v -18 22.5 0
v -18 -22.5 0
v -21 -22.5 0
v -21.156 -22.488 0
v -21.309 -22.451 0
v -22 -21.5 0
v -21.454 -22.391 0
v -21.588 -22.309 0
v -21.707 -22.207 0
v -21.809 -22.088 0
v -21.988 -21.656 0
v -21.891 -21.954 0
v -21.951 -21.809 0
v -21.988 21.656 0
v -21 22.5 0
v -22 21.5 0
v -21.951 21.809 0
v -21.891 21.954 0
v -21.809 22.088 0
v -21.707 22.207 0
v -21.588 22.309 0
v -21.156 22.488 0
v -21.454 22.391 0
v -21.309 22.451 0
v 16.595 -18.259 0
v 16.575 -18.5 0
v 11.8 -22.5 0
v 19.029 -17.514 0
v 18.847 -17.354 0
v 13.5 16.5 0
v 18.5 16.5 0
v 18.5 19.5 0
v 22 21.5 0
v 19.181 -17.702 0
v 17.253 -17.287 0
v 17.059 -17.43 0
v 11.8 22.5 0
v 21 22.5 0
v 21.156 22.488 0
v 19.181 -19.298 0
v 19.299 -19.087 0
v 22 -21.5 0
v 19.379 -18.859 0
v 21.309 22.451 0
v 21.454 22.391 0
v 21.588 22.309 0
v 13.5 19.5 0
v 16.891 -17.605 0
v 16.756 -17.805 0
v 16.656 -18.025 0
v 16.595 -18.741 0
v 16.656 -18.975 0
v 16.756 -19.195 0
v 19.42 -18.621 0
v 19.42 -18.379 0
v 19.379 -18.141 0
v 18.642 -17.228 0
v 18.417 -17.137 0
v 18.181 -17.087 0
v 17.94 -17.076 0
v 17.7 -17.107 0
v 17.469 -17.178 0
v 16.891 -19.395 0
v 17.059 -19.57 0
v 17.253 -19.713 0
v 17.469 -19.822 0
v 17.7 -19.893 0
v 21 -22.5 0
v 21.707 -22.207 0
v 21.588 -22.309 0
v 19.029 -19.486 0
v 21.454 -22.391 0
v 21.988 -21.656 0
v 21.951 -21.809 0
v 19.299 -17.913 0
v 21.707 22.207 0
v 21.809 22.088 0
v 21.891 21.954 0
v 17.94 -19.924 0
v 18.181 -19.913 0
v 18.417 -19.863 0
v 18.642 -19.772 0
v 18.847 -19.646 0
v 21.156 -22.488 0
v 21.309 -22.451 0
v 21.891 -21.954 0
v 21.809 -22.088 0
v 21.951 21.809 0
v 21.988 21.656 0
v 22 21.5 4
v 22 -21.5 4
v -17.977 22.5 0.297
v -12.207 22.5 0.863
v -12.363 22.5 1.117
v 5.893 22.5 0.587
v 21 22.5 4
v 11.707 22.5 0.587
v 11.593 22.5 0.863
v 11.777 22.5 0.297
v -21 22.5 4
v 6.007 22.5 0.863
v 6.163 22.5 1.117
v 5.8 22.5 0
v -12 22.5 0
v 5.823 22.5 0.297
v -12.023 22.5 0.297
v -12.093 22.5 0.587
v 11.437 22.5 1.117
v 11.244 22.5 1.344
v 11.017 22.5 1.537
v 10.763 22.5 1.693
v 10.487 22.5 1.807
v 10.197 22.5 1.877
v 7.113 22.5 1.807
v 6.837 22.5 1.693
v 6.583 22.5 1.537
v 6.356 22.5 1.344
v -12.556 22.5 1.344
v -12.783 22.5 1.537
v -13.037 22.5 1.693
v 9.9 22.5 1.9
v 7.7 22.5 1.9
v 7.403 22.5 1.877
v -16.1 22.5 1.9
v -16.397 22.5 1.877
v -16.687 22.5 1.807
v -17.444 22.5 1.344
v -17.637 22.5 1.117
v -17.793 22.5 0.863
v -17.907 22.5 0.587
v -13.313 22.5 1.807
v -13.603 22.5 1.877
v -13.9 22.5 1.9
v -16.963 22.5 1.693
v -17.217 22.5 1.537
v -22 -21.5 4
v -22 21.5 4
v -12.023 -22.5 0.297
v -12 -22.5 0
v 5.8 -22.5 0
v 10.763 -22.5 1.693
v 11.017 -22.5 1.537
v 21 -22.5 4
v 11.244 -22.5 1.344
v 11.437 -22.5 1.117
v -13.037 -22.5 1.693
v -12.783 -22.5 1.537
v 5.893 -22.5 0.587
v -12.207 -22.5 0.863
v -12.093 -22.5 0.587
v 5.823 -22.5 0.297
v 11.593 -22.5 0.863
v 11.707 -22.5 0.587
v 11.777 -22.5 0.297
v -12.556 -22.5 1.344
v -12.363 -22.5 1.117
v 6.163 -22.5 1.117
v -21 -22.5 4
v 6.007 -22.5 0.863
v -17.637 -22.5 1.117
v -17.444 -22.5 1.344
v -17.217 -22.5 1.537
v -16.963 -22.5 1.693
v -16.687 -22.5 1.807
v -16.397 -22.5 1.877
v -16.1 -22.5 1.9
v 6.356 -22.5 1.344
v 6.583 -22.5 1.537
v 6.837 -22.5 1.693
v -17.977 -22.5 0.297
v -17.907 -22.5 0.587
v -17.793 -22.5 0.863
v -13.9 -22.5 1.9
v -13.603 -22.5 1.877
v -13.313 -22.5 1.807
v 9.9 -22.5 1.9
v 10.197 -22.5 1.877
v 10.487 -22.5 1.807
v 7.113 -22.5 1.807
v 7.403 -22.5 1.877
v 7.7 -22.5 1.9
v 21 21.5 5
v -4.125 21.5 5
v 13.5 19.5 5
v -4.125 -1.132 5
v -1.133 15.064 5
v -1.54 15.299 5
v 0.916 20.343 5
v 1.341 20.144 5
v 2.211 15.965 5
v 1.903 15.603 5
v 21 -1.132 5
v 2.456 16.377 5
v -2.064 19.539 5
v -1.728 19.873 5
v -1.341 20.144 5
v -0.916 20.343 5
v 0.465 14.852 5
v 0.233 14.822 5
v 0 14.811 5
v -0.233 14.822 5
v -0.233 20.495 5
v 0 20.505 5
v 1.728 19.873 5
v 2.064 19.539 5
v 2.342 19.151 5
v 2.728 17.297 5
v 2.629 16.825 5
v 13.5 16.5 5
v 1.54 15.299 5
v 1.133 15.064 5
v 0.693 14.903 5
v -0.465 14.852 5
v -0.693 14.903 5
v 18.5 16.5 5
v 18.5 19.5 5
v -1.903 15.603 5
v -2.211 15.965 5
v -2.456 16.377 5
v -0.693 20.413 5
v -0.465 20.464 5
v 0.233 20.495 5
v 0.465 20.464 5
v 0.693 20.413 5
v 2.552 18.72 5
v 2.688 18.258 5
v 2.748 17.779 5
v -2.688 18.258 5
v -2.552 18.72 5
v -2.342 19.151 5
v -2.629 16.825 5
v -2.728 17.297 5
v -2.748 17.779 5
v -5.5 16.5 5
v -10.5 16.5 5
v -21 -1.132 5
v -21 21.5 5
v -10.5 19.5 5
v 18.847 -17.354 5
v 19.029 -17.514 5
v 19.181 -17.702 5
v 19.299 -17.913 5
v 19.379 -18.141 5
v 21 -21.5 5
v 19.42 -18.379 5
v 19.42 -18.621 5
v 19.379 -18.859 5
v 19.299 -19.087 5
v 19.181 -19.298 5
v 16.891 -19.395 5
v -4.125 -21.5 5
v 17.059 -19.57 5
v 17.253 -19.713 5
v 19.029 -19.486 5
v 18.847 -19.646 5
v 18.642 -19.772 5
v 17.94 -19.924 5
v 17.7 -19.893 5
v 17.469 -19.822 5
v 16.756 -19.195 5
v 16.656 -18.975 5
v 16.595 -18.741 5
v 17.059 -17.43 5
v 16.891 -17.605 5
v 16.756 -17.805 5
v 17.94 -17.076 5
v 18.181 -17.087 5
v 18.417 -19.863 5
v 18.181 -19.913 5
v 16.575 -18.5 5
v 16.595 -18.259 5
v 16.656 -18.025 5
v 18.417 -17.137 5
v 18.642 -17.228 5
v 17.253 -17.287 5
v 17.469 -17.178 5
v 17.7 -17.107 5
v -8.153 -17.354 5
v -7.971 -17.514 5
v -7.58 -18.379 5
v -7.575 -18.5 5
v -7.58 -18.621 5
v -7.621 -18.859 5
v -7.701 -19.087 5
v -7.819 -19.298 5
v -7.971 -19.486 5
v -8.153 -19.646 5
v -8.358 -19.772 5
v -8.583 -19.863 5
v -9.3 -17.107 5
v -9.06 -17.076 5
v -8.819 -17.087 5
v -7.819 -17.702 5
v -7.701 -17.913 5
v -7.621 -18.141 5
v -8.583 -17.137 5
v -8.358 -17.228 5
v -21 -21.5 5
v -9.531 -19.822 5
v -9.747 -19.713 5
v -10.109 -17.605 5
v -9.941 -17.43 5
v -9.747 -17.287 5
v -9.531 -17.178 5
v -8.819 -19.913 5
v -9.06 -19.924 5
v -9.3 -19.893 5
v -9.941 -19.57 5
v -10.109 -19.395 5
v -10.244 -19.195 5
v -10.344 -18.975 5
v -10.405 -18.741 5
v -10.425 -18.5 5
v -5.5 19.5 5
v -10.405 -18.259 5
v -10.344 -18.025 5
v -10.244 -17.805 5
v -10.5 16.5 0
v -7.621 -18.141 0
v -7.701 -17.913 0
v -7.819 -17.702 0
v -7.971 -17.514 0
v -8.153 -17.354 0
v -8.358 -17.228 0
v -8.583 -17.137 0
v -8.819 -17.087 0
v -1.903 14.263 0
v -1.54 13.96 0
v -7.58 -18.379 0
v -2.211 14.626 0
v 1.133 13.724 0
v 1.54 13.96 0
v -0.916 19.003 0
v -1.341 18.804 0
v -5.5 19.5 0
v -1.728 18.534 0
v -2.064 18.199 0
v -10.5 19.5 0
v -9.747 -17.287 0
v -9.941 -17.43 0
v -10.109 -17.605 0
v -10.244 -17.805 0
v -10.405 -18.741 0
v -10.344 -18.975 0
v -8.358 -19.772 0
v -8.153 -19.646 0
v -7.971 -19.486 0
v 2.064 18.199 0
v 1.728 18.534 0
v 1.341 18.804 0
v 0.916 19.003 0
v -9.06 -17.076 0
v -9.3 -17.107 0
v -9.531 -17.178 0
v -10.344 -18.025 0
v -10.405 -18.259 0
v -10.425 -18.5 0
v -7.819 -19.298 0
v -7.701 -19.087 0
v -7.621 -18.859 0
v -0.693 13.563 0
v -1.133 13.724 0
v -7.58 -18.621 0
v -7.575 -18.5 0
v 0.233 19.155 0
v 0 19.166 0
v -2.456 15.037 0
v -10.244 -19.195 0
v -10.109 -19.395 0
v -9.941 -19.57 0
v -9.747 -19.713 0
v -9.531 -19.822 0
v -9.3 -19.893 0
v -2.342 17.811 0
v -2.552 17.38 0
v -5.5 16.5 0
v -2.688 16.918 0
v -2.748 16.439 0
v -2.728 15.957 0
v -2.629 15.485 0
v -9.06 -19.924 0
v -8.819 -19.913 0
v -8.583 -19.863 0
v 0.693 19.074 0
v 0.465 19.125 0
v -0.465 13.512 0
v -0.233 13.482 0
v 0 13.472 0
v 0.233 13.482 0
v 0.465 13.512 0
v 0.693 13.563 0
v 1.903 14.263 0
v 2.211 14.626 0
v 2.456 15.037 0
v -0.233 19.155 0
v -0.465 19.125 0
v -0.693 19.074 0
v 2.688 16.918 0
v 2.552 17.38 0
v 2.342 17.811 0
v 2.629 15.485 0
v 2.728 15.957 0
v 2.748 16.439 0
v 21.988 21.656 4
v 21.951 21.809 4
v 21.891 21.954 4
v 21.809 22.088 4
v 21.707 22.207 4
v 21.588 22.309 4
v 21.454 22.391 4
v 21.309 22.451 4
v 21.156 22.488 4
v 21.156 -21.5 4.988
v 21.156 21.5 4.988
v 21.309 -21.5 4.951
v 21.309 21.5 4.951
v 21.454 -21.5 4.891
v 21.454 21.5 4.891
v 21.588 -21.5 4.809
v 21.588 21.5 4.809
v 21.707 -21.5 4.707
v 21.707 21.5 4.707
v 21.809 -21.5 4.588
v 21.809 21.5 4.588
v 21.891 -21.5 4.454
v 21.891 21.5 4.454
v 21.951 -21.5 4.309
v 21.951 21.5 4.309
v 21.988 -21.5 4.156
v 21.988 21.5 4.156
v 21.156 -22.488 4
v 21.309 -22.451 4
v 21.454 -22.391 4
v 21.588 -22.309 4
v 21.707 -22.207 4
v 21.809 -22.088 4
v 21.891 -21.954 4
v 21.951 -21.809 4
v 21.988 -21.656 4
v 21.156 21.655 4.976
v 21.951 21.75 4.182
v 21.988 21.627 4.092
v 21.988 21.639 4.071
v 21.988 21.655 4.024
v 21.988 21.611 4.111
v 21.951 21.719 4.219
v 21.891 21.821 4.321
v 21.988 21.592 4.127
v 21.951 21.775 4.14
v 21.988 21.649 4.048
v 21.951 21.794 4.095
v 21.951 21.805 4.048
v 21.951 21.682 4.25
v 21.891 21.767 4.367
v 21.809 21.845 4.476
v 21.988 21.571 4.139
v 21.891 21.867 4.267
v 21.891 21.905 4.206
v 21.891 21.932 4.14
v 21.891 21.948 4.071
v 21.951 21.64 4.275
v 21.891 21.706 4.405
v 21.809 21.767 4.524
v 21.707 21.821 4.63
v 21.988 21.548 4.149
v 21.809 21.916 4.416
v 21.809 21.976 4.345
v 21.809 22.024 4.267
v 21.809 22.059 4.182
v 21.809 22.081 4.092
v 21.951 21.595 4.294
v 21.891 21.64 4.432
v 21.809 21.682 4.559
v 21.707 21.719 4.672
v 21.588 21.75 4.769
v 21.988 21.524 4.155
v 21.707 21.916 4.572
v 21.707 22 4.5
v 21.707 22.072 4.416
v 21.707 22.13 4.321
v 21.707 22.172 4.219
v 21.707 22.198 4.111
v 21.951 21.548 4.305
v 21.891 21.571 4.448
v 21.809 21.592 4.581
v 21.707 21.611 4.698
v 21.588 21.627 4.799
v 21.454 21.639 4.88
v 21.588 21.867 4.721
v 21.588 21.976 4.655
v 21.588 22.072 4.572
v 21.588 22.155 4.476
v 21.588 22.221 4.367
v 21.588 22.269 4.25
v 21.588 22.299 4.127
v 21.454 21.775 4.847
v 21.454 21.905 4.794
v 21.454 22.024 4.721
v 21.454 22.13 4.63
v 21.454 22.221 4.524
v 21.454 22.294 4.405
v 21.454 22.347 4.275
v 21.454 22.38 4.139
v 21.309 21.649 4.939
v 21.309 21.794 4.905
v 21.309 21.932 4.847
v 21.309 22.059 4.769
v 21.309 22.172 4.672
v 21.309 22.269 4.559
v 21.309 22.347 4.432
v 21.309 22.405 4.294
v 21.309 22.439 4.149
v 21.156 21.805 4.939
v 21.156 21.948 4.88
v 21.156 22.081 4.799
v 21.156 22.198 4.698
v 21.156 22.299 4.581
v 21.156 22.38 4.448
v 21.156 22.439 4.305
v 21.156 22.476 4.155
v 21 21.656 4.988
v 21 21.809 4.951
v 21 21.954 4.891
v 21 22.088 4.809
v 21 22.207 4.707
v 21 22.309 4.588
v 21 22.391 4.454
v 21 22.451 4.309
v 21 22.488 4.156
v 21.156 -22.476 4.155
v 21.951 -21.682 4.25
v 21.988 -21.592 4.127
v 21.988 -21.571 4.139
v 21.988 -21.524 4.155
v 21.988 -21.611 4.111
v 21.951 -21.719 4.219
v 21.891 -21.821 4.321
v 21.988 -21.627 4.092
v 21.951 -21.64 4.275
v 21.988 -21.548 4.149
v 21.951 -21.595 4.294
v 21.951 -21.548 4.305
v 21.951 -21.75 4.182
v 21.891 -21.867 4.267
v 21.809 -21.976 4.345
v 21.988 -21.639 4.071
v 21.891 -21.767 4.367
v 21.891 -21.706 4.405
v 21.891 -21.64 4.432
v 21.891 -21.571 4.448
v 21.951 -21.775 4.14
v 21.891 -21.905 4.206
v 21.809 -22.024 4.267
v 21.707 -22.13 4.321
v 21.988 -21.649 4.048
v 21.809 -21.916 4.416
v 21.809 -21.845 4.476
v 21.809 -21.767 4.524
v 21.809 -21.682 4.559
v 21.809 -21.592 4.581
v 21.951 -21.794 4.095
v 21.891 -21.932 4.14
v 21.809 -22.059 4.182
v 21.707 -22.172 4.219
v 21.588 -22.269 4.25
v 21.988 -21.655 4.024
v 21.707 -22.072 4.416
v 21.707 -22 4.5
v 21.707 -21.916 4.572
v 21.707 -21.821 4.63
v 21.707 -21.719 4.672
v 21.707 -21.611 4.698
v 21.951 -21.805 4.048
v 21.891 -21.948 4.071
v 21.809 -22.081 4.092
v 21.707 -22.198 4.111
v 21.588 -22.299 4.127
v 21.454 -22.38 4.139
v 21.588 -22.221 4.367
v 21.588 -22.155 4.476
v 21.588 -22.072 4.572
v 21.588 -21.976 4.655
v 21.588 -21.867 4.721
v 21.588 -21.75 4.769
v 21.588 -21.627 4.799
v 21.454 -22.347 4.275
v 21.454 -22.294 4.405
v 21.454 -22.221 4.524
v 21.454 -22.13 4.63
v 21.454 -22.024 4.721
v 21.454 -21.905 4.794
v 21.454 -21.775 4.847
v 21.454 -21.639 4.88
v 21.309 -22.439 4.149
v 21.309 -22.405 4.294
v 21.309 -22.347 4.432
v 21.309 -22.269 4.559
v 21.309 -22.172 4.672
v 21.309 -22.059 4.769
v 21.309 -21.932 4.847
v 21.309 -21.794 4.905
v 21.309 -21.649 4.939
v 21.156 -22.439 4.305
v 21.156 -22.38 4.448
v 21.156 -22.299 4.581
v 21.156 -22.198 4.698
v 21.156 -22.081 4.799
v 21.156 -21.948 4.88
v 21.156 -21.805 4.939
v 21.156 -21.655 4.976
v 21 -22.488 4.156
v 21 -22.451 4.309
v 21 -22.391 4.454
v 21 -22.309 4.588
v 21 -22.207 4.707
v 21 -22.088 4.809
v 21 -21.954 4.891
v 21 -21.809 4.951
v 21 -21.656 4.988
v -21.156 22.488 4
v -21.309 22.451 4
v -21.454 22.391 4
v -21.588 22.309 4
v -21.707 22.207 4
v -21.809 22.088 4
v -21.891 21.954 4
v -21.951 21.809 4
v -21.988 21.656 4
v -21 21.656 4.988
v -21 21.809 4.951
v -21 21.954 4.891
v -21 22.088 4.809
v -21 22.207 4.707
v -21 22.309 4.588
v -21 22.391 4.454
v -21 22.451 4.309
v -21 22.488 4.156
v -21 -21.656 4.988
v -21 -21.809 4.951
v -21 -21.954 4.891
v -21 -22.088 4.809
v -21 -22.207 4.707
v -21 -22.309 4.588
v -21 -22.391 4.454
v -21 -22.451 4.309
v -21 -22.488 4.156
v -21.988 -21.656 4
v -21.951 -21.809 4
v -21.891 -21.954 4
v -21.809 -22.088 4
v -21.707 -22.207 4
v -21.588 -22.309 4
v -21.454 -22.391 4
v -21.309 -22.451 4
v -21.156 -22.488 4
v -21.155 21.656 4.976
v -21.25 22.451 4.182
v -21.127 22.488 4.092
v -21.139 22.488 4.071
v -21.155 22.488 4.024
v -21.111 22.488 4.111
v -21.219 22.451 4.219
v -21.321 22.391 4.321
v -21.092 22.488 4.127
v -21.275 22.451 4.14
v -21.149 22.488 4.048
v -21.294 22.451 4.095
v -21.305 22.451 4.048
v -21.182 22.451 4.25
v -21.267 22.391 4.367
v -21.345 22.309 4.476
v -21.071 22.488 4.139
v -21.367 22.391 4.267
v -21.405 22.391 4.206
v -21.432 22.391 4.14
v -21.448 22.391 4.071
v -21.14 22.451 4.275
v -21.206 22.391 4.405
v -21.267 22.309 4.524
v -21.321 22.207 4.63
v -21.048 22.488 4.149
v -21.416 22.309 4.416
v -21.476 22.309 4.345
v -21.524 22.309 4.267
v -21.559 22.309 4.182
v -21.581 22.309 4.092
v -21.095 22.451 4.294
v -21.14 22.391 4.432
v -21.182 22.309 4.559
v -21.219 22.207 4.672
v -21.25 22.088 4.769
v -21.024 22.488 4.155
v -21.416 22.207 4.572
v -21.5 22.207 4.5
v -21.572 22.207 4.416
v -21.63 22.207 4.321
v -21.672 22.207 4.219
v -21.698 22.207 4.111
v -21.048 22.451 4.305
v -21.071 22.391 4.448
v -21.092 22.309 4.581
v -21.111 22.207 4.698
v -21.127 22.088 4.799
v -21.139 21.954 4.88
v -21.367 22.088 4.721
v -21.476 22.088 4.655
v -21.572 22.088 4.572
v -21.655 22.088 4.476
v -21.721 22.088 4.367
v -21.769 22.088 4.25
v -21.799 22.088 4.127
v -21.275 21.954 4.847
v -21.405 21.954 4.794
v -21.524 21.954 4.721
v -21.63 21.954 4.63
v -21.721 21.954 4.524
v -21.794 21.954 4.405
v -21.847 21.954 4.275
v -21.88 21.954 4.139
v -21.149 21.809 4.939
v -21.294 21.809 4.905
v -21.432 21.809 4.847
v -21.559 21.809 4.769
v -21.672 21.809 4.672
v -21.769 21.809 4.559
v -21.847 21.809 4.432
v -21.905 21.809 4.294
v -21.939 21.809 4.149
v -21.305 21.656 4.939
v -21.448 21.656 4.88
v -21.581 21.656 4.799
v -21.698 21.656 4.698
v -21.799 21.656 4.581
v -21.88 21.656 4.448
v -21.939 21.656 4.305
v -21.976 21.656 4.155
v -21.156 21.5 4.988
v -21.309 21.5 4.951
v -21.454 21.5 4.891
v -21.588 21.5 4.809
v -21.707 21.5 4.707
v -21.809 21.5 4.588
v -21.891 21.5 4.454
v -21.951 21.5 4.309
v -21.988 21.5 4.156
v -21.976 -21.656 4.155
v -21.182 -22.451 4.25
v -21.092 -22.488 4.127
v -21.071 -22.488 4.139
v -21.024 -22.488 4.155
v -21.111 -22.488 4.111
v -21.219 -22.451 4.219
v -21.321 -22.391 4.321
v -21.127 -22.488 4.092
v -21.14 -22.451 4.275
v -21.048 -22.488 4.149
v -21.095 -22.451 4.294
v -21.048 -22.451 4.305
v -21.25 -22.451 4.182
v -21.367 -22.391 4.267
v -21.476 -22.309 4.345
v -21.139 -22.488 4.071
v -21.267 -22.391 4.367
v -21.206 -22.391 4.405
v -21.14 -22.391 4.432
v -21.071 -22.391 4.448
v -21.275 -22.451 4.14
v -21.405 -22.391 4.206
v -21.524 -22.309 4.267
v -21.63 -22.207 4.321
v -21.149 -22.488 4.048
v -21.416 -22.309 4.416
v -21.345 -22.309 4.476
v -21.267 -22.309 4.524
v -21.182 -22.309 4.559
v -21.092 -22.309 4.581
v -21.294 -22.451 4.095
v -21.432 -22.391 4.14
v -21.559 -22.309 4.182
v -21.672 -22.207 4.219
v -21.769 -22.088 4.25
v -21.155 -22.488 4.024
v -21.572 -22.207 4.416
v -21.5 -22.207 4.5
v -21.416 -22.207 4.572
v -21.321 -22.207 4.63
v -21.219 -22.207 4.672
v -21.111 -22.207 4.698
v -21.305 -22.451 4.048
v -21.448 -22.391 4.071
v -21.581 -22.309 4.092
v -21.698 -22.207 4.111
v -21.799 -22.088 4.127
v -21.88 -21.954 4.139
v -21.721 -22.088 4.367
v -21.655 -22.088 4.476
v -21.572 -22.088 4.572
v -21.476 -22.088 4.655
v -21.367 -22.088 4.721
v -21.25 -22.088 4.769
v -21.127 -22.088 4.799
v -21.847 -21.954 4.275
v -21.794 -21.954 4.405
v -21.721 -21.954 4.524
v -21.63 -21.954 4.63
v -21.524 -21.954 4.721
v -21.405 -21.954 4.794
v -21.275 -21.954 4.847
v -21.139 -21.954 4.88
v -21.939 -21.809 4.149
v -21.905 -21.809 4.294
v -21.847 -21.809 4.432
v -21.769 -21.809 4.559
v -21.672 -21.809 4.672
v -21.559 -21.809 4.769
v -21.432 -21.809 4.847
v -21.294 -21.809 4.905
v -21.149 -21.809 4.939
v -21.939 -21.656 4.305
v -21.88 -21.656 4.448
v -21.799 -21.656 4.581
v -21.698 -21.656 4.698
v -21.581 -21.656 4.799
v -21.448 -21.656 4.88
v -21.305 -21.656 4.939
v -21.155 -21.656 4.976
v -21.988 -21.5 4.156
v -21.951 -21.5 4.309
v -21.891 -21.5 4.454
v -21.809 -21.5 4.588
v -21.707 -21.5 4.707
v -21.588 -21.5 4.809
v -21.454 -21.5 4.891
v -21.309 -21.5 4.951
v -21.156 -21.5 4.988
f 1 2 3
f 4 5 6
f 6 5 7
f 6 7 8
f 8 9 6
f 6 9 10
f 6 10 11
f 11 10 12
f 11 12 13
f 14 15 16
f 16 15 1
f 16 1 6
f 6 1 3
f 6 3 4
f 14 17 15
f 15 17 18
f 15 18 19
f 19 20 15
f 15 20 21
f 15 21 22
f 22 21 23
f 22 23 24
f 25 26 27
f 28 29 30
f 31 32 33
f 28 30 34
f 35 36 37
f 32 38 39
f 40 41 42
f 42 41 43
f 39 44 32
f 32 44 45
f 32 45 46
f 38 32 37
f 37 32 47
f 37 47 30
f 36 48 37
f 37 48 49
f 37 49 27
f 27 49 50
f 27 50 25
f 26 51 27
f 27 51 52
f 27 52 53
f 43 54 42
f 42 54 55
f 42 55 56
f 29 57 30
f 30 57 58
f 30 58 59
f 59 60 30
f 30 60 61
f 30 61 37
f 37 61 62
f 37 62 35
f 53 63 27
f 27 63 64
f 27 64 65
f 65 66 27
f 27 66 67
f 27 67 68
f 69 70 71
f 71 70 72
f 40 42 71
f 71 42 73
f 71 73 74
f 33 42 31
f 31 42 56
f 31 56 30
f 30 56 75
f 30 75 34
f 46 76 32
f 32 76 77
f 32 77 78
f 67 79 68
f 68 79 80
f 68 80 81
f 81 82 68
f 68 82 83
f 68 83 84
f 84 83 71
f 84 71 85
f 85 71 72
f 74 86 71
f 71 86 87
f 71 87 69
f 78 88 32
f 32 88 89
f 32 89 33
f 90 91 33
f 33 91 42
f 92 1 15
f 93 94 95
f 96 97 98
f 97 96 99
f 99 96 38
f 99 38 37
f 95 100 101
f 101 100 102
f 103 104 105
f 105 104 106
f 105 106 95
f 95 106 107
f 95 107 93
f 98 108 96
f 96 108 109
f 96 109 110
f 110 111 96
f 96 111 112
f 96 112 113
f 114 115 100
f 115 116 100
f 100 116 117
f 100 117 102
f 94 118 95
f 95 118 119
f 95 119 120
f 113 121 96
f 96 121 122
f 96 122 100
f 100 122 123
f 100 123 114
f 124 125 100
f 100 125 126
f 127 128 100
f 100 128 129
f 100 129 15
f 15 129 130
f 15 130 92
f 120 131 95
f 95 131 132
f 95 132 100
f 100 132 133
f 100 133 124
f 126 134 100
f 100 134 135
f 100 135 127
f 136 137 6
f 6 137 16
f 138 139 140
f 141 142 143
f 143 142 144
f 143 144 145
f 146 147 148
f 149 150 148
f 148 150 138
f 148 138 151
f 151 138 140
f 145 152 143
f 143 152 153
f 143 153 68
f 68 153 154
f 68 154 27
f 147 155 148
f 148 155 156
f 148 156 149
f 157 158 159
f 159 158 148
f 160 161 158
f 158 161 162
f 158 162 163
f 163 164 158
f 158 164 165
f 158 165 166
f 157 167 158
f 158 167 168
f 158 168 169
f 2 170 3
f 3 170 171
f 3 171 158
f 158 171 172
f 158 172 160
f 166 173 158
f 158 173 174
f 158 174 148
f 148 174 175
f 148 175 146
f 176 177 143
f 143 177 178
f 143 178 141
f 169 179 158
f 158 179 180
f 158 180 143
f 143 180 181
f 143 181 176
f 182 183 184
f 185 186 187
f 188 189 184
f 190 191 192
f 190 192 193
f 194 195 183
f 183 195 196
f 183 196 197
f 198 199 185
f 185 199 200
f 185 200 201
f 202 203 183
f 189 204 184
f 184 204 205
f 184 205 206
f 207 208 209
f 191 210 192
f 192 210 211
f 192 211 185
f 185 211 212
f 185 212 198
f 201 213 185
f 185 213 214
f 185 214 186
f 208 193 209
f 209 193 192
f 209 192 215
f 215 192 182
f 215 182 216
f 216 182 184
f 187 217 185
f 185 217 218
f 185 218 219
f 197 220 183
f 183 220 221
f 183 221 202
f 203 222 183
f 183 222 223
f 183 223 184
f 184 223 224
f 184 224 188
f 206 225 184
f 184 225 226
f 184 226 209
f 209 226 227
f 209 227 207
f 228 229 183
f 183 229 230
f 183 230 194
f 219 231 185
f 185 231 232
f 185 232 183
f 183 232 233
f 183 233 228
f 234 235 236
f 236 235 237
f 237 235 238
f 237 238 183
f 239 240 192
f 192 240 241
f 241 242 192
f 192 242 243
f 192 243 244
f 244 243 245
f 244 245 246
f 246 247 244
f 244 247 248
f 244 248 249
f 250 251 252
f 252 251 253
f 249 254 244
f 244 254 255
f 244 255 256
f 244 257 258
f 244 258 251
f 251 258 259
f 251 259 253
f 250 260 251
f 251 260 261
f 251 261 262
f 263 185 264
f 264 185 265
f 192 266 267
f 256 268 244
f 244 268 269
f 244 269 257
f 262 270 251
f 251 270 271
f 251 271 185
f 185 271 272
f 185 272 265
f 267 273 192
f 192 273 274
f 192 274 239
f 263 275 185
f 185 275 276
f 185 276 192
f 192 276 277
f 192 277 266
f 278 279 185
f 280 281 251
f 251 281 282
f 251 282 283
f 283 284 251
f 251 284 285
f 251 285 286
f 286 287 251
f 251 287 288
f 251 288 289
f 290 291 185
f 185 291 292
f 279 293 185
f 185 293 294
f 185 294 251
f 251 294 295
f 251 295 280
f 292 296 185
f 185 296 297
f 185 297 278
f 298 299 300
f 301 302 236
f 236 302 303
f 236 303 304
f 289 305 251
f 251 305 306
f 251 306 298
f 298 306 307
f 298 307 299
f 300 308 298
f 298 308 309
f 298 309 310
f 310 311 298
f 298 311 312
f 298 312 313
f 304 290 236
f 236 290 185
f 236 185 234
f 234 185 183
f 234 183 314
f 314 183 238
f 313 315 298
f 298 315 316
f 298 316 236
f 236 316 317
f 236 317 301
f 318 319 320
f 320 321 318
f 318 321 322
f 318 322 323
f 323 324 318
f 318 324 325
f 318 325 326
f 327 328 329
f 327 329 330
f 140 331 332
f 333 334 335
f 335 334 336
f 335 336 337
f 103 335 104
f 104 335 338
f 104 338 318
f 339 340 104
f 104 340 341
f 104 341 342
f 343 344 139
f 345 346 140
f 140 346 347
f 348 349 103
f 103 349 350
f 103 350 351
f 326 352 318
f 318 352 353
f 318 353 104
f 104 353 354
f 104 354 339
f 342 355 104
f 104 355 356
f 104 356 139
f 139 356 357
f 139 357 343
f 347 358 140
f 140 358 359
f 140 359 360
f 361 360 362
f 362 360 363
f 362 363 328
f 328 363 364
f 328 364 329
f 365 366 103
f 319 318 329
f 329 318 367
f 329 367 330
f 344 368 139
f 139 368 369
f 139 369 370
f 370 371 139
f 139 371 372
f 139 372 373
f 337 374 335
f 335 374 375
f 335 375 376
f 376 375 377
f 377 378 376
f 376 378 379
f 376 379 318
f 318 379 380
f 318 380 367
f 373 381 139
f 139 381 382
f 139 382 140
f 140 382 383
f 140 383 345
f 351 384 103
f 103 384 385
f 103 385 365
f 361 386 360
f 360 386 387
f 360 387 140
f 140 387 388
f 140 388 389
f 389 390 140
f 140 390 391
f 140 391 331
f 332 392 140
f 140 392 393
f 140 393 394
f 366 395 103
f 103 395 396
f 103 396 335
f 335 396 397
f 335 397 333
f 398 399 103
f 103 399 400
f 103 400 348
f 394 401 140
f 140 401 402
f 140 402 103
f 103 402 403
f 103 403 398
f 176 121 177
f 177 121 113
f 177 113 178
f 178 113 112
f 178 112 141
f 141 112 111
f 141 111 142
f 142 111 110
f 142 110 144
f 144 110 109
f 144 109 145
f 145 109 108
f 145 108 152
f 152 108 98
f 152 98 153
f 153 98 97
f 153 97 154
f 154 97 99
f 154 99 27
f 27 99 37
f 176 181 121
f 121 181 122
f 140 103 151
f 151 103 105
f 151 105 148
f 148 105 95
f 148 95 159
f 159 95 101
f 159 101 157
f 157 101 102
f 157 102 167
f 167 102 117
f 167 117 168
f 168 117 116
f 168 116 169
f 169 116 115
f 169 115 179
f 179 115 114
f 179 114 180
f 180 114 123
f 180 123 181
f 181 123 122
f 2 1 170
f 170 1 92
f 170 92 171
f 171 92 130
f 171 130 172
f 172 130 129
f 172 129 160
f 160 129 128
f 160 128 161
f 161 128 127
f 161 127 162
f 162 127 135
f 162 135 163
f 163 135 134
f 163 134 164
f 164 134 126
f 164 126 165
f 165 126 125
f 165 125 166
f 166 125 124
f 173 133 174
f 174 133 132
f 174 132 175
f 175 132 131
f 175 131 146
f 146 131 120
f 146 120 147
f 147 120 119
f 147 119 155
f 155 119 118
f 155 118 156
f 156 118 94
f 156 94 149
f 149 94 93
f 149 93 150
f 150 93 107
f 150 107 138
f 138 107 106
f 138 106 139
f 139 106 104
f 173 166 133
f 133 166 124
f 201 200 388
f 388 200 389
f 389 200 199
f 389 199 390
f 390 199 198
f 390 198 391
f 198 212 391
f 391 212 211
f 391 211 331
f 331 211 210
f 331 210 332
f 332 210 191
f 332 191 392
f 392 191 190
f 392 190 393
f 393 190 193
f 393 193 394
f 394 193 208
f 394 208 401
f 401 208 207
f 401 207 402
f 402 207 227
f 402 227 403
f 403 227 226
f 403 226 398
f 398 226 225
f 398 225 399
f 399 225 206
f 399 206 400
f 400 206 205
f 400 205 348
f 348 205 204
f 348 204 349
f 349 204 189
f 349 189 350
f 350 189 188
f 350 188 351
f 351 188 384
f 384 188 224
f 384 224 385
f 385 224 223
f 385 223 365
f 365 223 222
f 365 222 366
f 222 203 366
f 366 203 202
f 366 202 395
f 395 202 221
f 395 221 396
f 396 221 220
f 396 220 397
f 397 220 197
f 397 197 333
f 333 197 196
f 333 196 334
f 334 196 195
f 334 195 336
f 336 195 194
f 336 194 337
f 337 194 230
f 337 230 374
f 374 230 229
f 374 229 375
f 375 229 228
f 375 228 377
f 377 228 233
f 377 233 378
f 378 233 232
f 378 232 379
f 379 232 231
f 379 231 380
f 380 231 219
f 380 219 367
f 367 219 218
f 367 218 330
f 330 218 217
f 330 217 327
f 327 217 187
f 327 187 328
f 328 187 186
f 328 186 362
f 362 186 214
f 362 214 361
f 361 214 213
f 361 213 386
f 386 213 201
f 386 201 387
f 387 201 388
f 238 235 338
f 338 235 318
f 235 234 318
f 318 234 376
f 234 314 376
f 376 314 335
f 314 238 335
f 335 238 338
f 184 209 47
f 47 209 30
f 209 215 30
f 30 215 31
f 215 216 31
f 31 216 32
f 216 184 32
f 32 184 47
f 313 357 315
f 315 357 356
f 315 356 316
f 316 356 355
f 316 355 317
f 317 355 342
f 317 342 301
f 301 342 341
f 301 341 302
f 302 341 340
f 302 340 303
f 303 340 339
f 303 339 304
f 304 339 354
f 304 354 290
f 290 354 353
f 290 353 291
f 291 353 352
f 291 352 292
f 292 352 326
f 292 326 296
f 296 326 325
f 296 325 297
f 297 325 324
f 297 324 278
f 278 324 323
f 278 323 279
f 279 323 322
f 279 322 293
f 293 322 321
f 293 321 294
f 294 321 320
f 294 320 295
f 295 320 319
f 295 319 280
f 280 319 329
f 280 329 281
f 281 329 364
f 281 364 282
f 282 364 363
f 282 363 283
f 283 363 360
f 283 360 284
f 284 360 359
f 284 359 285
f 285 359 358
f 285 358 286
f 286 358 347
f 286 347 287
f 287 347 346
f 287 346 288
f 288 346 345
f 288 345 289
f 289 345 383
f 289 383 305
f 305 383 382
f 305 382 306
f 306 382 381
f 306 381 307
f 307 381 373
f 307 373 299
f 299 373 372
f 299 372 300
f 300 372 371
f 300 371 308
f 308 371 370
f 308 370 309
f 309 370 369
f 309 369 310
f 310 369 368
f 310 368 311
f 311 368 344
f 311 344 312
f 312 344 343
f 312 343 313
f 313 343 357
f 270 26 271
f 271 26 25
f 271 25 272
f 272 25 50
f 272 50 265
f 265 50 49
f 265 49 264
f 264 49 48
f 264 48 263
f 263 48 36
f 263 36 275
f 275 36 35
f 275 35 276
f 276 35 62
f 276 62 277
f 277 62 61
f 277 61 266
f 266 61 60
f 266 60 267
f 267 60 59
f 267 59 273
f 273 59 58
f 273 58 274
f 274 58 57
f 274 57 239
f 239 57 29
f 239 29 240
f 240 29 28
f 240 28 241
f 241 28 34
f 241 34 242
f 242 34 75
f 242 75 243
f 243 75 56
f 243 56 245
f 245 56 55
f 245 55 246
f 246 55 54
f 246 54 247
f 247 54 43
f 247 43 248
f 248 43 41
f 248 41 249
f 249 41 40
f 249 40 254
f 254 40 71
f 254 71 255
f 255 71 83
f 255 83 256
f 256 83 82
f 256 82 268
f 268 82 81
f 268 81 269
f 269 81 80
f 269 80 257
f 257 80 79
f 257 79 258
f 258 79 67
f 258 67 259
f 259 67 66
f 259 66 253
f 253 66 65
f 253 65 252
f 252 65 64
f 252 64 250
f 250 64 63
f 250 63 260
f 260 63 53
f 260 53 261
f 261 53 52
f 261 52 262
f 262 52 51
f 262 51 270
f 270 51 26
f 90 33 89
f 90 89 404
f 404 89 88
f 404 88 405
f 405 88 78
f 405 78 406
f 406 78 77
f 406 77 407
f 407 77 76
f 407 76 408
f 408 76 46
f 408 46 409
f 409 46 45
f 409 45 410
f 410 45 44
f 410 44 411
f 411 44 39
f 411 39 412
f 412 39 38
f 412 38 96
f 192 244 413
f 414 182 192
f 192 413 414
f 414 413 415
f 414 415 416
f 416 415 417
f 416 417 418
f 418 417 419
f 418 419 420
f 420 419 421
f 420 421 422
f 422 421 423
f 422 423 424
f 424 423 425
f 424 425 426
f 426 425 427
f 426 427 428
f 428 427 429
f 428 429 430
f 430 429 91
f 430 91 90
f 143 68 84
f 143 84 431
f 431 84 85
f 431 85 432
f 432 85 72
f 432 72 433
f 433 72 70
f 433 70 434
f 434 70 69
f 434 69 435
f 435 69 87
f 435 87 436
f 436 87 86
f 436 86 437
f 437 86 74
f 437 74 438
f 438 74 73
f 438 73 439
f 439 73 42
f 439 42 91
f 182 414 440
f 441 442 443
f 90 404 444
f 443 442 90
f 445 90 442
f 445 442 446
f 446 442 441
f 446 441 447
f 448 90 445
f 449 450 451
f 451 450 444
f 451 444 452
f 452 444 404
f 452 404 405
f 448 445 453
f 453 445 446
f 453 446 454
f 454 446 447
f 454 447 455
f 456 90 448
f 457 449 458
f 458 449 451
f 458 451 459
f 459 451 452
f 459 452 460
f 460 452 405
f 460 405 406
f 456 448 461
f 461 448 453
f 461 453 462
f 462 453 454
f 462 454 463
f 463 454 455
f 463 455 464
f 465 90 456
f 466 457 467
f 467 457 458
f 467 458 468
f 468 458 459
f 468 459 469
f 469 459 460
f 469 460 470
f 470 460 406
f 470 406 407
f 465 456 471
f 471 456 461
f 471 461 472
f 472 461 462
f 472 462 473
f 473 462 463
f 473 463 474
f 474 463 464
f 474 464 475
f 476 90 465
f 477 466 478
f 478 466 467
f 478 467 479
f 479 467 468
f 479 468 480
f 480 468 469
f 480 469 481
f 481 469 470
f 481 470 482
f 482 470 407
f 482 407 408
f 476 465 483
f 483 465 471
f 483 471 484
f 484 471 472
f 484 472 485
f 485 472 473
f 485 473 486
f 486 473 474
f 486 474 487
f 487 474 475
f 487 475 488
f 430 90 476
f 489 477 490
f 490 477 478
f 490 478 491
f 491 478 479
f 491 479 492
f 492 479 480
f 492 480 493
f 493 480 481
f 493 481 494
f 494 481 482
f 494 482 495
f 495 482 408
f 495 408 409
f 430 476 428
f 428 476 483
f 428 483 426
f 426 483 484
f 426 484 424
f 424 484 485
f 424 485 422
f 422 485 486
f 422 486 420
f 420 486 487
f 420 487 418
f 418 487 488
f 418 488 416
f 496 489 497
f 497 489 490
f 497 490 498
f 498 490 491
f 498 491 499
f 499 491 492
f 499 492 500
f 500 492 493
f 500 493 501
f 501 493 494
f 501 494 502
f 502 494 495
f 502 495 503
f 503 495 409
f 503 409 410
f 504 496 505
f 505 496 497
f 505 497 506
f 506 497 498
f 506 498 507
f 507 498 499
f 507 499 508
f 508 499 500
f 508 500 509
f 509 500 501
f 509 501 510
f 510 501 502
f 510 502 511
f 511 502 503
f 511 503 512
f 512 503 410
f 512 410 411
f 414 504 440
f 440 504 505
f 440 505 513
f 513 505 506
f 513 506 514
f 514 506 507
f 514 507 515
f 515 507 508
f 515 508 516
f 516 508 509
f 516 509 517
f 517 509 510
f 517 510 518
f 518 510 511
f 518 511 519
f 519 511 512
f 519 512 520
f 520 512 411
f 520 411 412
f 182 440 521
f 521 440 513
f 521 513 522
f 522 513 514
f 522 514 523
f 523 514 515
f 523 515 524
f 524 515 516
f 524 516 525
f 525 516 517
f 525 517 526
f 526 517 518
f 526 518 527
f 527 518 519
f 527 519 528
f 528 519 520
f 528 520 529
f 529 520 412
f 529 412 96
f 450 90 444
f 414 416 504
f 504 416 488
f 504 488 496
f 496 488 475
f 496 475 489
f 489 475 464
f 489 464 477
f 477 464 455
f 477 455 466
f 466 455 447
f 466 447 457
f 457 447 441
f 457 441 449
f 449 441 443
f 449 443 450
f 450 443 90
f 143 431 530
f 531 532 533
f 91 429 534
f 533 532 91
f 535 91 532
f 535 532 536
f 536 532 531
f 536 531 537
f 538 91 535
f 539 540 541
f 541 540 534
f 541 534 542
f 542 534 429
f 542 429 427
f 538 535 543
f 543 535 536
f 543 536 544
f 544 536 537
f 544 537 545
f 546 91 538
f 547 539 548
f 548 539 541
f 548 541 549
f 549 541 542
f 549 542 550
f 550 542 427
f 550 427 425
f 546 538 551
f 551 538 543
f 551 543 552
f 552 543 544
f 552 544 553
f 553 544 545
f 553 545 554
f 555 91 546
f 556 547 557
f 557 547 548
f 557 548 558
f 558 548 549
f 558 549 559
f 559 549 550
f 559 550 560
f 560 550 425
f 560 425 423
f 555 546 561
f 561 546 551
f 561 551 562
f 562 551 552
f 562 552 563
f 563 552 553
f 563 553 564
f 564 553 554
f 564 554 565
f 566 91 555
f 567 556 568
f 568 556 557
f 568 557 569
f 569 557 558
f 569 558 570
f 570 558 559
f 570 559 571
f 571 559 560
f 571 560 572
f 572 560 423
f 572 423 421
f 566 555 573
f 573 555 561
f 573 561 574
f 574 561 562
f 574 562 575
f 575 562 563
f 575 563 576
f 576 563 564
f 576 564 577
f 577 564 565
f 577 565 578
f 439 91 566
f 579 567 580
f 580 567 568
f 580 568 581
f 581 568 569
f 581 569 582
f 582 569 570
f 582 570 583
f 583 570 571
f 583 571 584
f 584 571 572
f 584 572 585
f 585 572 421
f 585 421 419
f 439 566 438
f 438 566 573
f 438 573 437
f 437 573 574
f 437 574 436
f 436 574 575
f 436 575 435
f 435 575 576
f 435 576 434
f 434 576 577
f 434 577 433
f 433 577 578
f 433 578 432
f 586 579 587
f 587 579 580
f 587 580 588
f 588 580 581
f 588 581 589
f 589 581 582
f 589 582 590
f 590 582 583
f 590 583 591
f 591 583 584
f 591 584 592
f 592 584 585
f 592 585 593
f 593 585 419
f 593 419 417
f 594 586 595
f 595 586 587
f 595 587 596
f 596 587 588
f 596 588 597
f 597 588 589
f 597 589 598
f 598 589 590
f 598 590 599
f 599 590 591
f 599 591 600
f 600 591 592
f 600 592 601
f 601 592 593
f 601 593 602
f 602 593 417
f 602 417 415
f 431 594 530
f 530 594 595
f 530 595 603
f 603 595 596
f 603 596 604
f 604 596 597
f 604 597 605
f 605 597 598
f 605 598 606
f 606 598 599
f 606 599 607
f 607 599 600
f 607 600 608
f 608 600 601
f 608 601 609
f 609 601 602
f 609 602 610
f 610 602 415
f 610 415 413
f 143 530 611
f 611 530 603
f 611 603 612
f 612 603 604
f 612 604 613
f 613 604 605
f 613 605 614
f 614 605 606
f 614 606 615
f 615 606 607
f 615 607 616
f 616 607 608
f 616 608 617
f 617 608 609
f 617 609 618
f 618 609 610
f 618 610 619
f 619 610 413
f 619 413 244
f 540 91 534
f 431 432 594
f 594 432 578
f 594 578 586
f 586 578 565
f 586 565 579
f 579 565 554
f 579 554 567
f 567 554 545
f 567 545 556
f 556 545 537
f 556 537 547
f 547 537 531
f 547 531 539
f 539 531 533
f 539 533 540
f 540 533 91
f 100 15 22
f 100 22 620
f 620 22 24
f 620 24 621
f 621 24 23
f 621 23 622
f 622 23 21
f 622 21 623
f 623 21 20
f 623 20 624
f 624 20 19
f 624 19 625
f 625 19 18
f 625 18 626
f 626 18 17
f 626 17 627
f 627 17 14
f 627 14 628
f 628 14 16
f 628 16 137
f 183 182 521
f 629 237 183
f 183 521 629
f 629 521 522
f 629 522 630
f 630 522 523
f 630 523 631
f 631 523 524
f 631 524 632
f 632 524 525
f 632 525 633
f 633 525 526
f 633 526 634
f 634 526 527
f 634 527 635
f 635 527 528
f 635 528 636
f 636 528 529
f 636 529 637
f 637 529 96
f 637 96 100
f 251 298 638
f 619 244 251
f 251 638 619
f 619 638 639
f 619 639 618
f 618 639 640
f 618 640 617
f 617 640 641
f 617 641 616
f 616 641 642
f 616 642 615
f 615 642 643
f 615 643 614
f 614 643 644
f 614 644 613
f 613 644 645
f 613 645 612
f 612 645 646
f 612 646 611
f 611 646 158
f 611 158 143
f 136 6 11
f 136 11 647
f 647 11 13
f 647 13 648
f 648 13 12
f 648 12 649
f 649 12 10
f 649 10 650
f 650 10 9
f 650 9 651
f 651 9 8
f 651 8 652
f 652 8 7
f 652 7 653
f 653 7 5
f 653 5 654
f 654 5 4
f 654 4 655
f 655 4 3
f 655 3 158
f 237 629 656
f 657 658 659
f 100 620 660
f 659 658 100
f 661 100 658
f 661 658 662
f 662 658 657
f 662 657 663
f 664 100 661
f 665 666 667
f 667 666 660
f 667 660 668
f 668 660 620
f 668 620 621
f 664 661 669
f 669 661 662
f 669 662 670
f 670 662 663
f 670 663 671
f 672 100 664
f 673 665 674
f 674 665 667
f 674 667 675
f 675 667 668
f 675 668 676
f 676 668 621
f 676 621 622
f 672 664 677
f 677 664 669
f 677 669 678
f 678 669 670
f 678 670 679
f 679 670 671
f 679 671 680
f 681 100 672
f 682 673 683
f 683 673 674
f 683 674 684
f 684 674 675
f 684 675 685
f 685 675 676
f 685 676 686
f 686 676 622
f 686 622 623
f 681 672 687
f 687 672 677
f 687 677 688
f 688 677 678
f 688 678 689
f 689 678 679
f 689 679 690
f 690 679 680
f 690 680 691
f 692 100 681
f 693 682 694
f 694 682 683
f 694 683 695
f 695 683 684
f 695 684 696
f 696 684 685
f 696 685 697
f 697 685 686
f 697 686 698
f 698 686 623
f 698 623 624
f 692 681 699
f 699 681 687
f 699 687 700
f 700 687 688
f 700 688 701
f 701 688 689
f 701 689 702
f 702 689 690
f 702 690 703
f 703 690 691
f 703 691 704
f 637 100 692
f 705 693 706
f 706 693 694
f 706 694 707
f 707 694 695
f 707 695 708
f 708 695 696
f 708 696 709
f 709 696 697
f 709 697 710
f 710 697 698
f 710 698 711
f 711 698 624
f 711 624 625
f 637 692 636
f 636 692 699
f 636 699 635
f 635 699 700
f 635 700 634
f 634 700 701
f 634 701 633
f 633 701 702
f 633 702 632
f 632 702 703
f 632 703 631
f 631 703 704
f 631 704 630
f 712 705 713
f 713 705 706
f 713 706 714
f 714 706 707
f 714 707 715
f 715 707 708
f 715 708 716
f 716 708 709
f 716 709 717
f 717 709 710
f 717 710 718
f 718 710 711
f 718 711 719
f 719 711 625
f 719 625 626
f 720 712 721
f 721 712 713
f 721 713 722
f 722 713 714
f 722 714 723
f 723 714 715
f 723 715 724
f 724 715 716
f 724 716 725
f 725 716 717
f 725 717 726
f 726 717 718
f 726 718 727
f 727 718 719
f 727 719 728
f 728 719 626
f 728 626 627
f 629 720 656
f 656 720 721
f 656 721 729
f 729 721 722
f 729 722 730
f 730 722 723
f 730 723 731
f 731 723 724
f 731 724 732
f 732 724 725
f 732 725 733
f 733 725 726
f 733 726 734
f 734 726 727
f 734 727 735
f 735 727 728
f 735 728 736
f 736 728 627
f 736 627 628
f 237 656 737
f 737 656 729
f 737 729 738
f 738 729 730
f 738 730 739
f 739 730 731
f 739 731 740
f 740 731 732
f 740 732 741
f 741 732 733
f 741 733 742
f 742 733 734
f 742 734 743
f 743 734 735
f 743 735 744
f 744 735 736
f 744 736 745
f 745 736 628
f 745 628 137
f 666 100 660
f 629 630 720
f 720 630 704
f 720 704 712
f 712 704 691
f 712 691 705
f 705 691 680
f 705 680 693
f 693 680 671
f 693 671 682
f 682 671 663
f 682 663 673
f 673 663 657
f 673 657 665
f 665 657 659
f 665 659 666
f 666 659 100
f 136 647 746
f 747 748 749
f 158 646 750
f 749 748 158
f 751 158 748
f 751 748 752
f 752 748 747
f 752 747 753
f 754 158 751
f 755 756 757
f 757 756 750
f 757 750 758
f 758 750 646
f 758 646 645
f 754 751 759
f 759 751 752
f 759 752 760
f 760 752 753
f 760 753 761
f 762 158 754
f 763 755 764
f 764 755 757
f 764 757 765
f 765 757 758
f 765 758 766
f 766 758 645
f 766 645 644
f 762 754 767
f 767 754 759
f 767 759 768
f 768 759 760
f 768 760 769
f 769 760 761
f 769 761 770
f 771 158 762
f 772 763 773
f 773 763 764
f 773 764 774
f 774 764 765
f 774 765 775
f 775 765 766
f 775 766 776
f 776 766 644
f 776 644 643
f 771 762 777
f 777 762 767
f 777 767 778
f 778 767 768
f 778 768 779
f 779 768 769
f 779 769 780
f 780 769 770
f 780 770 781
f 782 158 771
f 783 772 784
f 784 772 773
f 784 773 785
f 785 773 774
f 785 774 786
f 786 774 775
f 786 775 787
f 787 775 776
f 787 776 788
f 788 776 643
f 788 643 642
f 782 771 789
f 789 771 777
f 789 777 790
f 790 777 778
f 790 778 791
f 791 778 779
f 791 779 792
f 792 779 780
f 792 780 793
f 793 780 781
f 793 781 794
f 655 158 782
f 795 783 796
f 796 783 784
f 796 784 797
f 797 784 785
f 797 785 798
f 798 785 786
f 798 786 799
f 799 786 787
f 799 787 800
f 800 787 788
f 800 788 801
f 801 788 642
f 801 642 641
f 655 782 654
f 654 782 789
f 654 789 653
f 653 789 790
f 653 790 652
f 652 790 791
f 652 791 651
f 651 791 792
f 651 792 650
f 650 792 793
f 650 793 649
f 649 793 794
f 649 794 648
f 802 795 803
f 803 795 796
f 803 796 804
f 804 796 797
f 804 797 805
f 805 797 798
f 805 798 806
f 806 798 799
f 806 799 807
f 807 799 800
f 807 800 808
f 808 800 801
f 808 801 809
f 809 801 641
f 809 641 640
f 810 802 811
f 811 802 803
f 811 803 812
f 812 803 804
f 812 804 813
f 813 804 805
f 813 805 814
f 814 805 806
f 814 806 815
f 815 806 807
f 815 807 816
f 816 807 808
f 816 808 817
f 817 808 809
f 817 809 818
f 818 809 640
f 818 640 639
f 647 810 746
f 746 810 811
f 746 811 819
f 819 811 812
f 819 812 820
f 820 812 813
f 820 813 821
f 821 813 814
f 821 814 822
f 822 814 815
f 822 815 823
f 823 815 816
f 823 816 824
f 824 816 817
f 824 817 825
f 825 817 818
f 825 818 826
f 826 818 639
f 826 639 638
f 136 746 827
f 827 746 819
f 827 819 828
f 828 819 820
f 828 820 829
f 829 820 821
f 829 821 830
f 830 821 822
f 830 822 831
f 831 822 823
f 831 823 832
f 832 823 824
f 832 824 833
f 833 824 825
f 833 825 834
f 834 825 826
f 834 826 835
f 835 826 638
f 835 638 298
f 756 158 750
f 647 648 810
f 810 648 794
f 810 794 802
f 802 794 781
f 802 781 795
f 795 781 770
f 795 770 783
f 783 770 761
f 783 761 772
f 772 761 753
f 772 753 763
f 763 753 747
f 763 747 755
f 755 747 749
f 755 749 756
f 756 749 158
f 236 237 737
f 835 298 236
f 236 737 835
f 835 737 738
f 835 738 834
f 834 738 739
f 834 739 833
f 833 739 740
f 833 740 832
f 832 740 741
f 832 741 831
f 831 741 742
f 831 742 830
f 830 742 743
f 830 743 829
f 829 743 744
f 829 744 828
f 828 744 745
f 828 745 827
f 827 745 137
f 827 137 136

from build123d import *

# Parameters (mm, degrees)
SKETCH1_W                       = 44
SKETCH1_H                       = 45
BASE_DEPTH                      = 5
WIRE_GROOVES_DEPTH              = 51.338851795
SCREW_INSERTION_HOLE_DEPTH      = 33.181634738
SCREW_INSERTION_HOLE_DEPTH_BACK = 33.181634738
SKETCH3_R                       = 2.75
SKETCH5_W                       = 5
SKETCH5_H                       = 3
ZIP_TIE_SLOTS_DEPTH             = 32.862987933
SKETCH6_R                       = 1.425
MOUNT_CLAMPING_HOLES_DEPTH      = 32.862987933
EDGE_FILLETS_R                  = 1


with BuildPart() as part:
    # Sketch1 → Base (new body)
    with BuildSketch(Plane.XY):
        Rectangle(SKETCH1_W, SKETCH1_H)
    extrude(amount=BASE_DEPTH)

    # Sketch2 → Wire Grooves (cut, through all)
    with BuildSketch(Plane(origin=(0, 22.5, 0), x_dir=(1, 0, 0), z_dir=(0, 1, 0))):
        with BuildLine():
            Line((-18, 0), (-12, 0))
            ThreePointArc((-12, 0), (-12.556497116, -1.343502884), (-13.9, -1.9))
            Line((-13.9, -1.9), (-16.1, -1.9))
            ThreePointArc((-16.1, -1.9), (-17.443502884, -1.343502884), (-18, 0))
        make_face()
        with BuildLine():
            Line((9.9, -1.9), (7.7, -1.9))
            ThreePointArc((7.7, -1.9), (6.356497116, -1.343502884), (5.8, 0))
            Line((5.8, 0), (11.8, 0))
            ThreePointArc((11.8, 0), (11.243502884, -1.343502884), (9.9, -1.9))
        make_face()
    extrude(amount=-WIRE_GROOVES_DEPTH, mode=Mode.SUBTRACT)

    # Sketch3 → Screw Insertion Hole (cut, two sides: drawn at the far end of the back side and taken through both)
    with BuildSketch(Plane(origin=(0, 0.596130014, 4.269237963), x_dir=(-1, 0, 0), z_dir=(0, -0.25881904510252135, -0.9659258262890681)).offset(-SCREW_INSERTION_HOLE_DEPTH_BACK)):
        with Locations(Location((0, 16.291616808, 0), (0, 0, 270))):
            Circle(SKETCH3_R)
    extrude(amount=SCREW_INSERTION_HOLE_DEPTH + SCREW_INSERTION_HOLE_DEPTH_BACK, mode=Mode.SUBTRACT)

    # Sketch5 → Zip Tie Slots (cut, through all)
    with BuildSketch(Plane(origin=(0, 0, 0), x_dir=(-1, 0, 0), z_dir=(0, 0, -1))):
        with Locations((-16, 18)):
            Rectangle(SKETCH5_W, SKETCH5_H)
        with Locations((8, 18)):
            Rectangle(SKETCH5_W, SKETCH5_H)
    extrude(amount=-ZIP_TIE_SLOTS_DEPTH, mode=Mode.SUBTRACT)

    # Sketch6 → Mount Clamping Holes (cut, through all)
    with BuildSketch(Plane(origin=(0, 0, 0), x_dir=(-1, 0, 0), z_dir=(0, 0, -1))):
        with Locations((-18, -18.5)):
            Circle(SKETCH6_R)
        with Locations(Location((9, -18.5, 0), (0, 0, 180))):
            Circle(SKETCH6_R)
    extrude(amount=-MOUNT_CLAMPING_HOLES_DEPTH, mode=Mode.SUBTRACT)

    # Edge Fillets
    edge_fillets_edges = [part.edges().sort_by_distance(p)[0] for p in [
        (-22, 0, 5),
        (0, -22.5, 5),
        (22, 0, 5),
        (22, -22.5, 2.5),
        (-22, -22.5, 2.5),
        (-22, 22.5, 2.5),
        (22, 22.5, 2.5),
        (0, 22.5, 5),
    ]]
    fillet(edge_fillets_edges, radius=EDGE_FILLETS_R)


solid = part.part
